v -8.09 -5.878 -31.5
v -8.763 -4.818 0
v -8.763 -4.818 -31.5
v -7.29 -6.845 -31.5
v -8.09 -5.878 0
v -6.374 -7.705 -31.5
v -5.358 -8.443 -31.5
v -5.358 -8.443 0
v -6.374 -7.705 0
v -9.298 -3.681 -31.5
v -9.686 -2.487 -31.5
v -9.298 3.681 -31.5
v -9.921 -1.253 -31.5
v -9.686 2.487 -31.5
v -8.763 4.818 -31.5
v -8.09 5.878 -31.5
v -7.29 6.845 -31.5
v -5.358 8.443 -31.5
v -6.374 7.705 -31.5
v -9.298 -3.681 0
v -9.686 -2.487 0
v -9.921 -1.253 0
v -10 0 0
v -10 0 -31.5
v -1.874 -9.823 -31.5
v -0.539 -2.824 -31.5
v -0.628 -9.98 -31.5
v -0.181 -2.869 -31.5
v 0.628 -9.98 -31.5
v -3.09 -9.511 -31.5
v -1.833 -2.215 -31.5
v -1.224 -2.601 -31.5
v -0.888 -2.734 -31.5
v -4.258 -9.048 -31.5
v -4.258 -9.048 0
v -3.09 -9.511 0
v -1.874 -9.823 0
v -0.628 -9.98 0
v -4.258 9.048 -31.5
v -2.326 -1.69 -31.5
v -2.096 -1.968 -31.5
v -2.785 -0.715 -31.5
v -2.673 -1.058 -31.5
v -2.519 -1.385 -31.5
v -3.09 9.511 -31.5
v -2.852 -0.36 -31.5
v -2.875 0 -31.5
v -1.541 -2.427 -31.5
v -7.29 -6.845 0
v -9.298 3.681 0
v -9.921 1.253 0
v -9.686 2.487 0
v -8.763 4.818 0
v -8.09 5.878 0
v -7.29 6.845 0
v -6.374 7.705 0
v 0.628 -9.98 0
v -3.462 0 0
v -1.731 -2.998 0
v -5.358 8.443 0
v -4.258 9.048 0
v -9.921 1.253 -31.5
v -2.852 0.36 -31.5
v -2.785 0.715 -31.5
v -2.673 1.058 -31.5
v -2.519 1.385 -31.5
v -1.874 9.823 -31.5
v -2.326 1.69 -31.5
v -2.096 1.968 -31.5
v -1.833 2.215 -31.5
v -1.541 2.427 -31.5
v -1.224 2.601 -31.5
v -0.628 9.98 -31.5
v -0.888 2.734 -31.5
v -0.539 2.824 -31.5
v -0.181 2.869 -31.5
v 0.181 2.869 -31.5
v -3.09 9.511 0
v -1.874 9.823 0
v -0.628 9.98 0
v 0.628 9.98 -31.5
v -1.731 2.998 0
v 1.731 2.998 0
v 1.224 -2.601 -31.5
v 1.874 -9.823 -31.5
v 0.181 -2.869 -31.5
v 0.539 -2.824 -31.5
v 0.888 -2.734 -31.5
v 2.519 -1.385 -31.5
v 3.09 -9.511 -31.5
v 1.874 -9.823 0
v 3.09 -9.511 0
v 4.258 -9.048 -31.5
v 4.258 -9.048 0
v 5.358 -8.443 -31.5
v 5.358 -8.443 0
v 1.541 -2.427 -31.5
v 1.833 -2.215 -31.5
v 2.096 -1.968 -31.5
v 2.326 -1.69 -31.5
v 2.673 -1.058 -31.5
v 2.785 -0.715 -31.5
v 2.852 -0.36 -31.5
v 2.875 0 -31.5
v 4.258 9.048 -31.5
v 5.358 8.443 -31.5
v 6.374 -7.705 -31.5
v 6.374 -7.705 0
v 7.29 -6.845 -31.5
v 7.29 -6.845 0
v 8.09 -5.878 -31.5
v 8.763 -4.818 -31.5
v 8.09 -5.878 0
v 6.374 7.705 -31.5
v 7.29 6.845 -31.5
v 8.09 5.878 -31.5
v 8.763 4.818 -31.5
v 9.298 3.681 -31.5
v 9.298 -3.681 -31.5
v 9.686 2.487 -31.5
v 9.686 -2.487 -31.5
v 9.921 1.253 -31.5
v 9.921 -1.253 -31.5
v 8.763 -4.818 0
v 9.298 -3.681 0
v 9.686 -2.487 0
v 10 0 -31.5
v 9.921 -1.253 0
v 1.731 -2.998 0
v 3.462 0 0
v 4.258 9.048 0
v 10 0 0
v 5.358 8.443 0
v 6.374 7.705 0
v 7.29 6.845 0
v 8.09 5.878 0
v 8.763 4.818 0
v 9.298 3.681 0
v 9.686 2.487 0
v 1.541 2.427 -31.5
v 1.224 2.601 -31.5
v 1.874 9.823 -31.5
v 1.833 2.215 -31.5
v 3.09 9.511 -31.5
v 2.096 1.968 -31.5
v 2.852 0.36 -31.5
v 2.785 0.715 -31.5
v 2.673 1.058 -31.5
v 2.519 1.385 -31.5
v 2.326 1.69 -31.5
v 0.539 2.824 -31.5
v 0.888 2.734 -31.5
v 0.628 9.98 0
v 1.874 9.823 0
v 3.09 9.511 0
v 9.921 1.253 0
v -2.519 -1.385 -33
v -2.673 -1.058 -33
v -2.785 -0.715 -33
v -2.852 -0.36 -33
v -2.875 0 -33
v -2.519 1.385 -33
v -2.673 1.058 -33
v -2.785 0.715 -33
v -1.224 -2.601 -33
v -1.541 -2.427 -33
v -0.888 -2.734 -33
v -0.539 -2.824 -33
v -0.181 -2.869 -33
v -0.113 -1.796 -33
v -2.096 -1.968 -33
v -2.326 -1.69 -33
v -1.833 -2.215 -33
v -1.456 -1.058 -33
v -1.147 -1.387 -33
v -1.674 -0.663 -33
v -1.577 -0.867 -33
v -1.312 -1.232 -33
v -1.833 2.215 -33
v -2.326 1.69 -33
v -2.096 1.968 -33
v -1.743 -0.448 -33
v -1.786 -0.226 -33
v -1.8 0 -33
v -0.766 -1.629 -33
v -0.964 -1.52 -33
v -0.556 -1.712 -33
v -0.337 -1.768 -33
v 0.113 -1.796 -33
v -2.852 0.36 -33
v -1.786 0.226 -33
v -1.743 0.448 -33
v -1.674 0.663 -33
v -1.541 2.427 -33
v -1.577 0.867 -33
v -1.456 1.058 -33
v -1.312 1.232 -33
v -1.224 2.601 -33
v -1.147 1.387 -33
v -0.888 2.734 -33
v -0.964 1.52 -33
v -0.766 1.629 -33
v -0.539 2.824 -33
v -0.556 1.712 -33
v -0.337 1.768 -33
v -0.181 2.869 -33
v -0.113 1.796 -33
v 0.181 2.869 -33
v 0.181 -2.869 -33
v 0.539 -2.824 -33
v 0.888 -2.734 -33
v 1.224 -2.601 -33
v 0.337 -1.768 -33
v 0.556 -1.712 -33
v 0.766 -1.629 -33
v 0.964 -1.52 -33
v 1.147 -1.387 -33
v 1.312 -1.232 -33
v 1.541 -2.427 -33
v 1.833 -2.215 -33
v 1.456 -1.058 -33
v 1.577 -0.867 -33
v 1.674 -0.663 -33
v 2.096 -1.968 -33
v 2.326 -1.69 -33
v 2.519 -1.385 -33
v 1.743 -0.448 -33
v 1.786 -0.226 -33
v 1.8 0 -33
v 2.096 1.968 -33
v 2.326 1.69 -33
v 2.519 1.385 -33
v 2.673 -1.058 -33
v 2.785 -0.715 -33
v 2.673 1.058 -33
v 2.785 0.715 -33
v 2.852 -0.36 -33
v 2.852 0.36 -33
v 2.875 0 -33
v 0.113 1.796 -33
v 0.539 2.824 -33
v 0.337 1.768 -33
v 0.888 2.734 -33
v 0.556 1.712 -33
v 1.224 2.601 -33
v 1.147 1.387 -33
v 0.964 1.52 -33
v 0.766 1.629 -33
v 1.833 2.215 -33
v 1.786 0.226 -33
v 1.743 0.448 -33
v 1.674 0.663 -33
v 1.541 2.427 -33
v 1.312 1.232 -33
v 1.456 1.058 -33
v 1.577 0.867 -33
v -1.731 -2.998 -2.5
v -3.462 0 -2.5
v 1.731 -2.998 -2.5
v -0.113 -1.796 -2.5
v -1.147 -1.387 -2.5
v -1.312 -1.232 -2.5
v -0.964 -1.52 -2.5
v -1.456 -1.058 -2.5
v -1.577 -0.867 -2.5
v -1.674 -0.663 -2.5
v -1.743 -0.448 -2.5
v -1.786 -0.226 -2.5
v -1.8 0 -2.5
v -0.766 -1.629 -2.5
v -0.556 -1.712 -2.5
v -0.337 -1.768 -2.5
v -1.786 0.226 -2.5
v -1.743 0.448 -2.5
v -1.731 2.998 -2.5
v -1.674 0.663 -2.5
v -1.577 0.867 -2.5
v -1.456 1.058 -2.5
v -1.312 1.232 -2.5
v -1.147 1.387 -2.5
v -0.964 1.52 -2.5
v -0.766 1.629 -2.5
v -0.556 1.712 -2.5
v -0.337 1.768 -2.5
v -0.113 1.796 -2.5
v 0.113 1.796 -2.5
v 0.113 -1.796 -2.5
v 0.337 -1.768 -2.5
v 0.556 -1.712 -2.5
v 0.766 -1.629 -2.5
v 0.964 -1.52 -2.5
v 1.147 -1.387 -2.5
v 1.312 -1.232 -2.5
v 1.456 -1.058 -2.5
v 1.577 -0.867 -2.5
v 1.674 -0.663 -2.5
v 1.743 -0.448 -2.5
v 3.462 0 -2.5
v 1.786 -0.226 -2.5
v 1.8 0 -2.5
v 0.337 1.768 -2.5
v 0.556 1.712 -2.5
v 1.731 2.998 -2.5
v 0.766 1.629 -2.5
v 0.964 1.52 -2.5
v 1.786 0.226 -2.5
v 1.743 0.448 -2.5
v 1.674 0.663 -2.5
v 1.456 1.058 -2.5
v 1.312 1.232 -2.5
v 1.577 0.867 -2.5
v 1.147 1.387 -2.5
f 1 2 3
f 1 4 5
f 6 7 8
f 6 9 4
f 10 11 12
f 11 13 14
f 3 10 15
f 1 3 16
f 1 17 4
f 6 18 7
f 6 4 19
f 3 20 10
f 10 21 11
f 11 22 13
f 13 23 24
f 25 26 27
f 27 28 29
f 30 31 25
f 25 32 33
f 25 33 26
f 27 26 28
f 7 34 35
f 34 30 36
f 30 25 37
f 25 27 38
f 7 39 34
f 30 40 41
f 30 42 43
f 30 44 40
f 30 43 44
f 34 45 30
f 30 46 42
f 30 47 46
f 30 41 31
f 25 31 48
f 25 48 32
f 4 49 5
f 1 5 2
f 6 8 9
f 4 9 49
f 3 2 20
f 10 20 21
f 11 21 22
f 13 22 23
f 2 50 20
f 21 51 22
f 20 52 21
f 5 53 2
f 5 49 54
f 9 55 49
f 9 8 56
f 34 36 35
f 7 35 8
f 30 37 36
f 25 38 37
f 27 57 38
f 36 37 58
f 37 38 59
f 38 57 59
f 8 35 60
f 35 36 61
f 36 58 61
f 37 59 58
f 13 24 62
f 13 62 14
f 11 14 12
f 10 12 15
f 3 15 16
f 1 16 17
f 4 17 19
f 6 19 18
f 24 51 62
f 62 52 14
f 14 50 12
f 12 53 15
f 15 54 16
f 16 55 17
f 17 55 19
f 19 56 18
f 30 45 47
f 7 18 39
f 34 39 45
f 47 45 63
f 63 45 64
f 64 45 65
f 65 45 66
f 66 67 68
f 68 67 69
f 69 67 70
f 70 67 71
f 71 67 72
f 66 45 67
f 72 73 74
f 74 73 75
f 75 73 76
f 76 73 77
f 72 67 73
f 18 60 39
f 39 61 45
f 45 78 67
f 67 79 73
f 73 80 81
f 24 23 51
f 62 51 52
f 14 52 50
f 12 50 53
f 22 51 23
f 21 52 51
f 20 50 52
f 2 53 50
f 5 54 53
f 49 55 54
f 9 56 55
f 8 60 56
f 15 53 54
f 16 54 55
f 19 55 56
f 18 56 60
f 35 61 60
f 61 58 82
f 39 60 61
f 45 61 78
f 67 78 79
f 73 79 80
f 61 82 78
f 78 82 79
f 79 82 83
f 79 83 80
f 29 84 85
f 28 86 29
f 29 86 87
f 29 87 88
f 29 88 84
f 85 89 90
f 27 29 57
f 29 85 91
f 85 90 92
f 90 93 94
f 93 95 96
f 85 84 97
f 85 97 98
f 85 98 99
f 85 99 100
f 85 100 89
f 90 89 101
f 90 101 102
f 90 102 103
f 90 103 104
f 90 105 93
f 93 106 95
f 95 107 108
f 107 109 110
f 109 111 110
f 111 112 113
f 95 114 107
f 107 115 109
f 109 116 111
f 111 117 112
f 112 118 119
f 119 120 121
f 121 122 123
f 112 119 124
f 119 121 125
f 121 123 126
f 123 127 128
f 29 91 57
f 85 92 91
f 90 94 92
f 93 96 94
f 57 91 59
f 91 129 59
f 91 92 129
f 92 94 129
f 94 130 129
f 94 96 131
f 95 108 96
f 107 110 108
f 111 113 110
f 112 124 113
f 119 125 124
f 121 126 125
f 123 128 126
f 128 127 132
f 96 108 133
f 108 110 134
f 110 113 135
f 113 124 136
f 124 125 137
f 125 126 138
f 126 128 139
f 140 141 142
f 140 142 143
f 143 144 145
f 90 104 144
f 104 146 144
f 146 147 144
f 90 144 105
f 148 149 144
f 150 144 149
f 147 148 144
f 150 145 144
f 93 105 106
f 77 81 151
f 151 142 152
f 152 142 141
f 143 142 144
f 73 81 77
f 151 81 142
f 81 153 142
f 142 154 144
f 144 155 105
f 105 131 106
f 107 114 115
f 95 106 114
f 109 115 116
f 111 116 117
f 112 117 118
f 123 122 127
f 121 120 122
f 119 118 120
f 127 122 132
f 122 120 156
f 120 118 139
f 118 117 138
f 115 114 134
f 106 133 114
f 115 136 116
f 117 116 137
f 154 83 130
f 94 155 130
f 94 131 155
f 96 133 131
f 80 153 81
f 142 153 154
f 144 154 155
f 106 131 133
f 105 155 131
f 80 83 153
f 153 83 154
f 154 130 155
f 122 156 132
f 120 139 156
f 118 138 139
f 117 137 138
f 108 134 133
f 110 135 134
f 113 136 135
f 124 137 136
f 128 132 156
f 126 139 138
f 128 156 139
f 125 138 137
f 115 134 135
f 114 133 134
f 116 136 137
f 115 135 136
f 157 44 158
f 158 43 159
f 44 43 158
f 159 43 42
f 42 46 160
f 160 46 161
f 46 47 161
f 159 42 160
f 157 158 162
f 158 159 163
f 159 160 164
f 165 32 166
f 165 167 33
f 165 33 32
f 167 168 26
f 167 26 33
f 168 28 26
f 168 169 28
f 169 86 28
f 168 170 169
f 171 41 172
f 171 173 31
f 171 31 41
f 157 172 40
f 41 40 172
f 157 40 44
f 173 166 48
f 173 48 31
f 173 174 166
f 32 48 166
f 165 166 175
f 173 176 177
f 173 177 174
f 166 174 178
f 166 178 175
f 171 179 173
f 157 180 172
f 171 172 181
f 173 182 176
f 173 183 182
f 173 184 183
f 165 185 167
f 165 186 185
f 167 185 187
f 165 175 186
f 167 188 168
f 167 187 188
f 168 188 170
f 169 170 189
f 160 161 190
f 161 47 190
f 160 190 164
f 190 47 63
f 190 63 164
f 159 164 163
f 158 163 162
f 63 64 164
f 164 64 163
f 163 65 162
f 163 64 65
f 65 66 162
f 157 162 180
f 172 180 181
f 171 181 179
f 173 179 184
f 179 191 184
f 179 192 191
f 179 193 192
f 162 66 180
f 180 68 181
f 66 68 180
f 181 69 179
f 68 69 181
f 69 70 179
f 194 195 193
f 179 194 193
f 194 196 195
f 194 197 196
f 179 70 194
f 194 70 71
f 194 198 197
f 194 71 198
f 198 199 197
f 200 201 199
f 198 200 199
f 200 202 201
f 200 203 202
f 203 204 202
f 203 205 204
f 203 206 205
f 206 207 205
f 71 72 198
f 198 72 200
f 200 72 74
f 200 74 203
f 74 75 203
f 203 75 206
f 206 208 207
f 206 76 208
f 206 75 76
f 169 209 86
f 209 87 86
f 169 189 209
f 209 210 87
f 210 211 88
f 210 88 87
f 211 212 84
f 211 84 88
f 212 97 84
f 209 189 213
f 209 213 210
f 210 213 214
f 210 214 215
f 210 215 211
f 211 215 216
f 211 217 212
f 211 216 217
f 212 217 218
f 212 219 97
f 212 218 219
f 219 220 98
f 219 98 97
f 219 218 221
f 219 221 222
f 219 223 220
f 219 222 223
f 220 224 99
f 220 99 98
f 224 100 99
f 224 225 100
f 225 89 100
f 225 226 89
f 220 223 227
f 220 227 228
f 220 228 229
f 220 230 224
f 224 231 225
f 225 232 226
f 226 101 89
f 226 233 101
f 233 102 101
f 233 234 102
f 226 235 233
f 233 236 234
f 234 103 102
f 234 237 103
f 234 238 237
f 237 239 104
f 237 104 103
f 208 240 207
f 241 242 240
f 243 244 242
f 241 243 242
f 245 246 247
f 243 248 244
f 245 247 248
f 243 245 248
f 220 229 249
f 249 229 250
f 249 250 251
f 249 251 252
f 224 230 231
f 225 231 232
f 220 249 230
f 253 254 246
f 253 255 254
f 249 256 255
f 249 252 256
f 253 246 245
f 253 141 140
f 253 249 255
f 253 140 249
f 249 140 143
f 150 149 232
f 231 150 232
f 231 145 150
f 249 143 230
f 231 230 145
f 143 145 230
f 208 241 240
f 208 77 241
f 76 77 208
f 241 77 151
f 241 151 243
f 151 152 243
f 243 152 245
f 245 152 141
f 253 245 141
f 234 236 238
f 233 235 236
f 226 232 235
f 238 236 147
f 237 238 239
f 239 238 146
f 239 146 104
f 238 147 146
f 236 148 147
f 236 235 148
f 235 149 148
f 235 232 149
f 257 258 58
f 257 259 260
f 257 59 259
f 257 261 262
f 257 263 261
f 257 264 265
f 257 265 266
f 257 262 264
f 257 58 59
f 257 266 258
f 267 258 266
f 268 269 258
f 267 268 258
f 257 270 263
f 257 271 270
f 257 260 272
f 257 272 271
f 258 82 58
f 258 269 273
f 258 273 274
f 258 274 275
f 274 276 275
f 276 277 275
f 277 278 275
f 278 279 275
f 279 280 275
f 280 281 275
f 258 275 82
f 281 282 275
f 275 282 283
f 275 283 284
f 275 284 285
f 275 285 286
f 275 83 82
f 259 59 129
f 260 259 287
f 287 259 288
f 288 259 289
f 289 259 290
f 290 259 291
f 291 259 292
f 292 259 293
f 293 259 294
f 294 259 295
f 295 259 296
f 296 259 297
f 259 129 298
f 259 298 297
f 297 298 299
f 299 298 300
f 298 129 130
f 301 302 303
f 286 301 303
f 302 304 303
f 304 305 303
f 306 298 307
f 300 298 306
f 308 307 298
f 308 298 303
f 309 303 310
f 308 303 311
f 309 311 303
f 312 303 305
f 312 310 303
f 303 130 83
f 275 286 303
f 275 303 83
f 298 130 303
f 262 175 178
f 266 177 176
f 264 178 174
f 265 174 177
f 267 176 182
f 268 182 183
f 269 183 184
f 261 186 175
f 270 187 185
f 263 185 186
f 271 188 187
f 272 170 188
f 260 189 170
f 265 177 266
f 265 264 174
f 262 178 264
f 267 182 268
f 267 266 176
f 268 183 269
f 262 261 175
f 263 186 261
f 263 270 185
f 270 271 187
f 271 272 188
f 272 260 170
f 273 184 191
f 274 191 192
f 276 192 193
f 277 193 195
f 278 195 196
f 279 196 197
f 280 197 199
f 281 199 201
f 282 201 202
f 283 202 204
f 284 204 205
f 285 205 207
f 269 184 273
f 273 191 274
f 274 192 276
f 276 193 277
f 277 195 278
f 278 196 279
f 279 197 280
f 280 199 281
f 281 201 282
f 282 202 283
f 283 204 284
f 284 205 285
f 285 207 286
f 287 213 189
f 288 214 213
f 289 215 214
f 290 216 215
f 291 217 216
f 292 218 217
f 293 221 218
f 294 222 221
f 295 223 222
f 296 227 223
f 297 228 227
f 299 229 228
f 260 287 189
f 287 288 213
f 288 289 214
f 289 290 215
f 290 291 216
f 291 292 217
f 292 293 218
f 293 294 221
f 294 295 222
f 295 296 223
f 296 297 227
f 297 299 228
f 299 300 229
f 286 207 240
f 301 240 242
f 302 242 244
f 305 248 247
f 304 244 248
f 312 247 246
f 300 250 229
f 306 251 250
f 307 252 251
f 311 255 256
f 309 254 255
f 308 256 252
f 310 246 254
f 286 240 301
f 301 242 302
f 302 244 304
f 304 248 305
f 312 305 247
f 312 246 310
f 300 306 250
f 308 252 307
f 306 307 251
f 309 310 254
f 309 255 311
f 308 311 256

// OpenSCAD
$fn = 50;

difference() {
	union() {
		translate(v = [0, 0, -31.5]) {
			cylinder(h = 31.5, r = 10.0);
		}
		#translate(v = [0, 0, -33.0]) {
			cylinder(h = 33, r = 2.875);
		}
	}
	union() {
		translate(v = [0, 0, 0]) {
			rotate(a = [0, 0, 0]) {
				difference() {
					union() {
						translate(v = [0, 0, -2.5]) {
							linear_extrude(height = 2.5) {
								polygon(points = [[3.4619999999999997, 0.0], [1.7310000000000003, 2.9981799479017264], [-1.7309999999999992, 2.9981799479017264], [-3.4619999999999997, 4.2397272186481365e-16], [-1.7310000000000014, -2.998179947901726], [1.7309999999999977, -2.9981799479017277]]);
							}
						}
					}
					union();
				}
			}
		}
		#translate(v = [0, 0, -100.0]) {
			cylinder(h = 200, r = 1.8);
		}
	}
}
